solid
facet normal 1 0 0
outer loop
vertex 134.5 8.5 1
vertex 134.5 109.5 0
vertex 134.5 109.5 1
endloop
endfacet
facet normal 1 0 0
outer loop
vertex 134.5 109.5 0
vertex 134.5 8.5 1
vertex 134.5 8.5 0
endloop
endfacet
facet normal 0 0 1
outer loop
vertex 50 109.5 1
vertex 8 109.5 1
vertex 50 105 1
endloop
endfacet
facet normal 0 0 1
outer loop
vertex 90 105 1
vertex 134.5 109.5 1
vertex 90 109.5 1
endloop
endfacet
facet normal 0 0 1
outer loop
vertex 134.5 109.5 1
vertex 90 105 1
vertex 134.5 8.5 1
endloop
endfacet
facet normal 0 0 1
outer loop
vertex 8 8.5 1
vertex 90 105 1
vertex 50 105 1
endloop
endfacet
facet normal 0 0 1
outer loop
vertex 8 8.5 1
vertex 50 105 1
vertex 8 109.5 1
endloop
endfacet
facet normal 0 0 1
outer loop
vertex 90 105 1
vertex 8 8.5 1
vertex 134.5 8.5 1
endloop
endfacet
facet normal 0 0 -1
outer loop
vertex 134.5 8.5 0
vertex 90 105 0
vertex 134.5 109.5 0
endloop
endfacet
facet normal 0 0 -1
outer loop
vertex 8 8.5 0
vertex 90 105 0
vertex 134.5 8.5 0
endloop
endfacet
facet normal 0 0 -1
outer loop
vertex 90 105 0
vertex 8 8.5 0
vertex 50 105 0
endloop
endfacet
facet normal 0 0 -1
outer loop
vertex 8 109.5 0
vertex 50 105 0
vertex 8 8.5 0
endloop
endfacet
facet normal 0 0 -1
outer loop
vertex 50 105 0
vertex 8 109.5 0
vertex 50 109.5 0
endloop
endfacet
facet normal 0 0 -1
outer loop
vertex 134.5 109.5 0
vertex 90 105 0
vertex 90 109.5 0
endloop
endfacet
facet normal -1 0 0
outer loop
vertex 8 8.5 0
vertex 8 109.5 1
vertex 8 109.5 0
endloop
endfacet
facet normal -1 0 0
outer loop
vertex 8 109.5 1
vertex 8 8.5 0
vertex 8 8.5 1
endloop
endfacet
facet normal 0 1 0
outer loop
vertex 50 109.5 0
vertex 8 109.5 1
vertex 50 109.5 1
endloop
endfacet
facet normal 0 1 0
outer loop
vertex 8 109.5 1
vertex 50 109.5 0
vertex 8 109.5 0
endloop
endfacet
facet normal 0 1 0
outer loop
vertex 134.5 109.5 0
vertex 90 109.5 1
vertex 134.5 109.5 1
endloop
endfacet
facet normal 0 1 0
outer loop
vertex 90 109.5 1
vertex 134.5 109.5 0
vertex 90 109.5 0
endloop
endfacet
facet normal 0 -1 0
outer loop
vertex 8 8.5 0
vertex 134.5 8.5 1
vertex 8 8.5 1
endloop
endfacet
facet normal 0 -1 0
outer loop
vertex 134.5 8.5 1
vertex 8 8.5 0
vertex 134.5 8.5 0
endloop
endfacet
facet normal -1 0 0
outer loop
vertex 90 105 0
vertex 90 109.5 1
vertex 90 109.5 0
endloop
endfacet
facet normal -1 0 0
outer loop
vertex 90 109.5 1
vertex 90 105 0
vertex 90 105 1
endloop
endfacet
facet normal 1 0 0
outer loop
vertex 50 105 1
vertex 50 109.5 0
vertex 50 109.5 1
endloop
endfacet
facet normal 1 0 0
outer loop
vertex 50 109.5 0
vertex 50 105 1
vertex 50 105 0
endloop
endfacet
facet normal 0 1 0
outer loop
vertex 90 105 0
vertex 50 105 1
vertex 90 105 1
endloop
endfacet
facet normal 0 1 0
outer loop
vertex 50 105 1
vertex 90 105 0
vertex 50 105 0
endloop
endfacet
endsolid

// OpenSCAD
difference() {
    translate([8, 8.5, 0]) cube([126.5, 101, 1]);
    translate([50, 105, 0]) cube([40, 5, 3]);
}
